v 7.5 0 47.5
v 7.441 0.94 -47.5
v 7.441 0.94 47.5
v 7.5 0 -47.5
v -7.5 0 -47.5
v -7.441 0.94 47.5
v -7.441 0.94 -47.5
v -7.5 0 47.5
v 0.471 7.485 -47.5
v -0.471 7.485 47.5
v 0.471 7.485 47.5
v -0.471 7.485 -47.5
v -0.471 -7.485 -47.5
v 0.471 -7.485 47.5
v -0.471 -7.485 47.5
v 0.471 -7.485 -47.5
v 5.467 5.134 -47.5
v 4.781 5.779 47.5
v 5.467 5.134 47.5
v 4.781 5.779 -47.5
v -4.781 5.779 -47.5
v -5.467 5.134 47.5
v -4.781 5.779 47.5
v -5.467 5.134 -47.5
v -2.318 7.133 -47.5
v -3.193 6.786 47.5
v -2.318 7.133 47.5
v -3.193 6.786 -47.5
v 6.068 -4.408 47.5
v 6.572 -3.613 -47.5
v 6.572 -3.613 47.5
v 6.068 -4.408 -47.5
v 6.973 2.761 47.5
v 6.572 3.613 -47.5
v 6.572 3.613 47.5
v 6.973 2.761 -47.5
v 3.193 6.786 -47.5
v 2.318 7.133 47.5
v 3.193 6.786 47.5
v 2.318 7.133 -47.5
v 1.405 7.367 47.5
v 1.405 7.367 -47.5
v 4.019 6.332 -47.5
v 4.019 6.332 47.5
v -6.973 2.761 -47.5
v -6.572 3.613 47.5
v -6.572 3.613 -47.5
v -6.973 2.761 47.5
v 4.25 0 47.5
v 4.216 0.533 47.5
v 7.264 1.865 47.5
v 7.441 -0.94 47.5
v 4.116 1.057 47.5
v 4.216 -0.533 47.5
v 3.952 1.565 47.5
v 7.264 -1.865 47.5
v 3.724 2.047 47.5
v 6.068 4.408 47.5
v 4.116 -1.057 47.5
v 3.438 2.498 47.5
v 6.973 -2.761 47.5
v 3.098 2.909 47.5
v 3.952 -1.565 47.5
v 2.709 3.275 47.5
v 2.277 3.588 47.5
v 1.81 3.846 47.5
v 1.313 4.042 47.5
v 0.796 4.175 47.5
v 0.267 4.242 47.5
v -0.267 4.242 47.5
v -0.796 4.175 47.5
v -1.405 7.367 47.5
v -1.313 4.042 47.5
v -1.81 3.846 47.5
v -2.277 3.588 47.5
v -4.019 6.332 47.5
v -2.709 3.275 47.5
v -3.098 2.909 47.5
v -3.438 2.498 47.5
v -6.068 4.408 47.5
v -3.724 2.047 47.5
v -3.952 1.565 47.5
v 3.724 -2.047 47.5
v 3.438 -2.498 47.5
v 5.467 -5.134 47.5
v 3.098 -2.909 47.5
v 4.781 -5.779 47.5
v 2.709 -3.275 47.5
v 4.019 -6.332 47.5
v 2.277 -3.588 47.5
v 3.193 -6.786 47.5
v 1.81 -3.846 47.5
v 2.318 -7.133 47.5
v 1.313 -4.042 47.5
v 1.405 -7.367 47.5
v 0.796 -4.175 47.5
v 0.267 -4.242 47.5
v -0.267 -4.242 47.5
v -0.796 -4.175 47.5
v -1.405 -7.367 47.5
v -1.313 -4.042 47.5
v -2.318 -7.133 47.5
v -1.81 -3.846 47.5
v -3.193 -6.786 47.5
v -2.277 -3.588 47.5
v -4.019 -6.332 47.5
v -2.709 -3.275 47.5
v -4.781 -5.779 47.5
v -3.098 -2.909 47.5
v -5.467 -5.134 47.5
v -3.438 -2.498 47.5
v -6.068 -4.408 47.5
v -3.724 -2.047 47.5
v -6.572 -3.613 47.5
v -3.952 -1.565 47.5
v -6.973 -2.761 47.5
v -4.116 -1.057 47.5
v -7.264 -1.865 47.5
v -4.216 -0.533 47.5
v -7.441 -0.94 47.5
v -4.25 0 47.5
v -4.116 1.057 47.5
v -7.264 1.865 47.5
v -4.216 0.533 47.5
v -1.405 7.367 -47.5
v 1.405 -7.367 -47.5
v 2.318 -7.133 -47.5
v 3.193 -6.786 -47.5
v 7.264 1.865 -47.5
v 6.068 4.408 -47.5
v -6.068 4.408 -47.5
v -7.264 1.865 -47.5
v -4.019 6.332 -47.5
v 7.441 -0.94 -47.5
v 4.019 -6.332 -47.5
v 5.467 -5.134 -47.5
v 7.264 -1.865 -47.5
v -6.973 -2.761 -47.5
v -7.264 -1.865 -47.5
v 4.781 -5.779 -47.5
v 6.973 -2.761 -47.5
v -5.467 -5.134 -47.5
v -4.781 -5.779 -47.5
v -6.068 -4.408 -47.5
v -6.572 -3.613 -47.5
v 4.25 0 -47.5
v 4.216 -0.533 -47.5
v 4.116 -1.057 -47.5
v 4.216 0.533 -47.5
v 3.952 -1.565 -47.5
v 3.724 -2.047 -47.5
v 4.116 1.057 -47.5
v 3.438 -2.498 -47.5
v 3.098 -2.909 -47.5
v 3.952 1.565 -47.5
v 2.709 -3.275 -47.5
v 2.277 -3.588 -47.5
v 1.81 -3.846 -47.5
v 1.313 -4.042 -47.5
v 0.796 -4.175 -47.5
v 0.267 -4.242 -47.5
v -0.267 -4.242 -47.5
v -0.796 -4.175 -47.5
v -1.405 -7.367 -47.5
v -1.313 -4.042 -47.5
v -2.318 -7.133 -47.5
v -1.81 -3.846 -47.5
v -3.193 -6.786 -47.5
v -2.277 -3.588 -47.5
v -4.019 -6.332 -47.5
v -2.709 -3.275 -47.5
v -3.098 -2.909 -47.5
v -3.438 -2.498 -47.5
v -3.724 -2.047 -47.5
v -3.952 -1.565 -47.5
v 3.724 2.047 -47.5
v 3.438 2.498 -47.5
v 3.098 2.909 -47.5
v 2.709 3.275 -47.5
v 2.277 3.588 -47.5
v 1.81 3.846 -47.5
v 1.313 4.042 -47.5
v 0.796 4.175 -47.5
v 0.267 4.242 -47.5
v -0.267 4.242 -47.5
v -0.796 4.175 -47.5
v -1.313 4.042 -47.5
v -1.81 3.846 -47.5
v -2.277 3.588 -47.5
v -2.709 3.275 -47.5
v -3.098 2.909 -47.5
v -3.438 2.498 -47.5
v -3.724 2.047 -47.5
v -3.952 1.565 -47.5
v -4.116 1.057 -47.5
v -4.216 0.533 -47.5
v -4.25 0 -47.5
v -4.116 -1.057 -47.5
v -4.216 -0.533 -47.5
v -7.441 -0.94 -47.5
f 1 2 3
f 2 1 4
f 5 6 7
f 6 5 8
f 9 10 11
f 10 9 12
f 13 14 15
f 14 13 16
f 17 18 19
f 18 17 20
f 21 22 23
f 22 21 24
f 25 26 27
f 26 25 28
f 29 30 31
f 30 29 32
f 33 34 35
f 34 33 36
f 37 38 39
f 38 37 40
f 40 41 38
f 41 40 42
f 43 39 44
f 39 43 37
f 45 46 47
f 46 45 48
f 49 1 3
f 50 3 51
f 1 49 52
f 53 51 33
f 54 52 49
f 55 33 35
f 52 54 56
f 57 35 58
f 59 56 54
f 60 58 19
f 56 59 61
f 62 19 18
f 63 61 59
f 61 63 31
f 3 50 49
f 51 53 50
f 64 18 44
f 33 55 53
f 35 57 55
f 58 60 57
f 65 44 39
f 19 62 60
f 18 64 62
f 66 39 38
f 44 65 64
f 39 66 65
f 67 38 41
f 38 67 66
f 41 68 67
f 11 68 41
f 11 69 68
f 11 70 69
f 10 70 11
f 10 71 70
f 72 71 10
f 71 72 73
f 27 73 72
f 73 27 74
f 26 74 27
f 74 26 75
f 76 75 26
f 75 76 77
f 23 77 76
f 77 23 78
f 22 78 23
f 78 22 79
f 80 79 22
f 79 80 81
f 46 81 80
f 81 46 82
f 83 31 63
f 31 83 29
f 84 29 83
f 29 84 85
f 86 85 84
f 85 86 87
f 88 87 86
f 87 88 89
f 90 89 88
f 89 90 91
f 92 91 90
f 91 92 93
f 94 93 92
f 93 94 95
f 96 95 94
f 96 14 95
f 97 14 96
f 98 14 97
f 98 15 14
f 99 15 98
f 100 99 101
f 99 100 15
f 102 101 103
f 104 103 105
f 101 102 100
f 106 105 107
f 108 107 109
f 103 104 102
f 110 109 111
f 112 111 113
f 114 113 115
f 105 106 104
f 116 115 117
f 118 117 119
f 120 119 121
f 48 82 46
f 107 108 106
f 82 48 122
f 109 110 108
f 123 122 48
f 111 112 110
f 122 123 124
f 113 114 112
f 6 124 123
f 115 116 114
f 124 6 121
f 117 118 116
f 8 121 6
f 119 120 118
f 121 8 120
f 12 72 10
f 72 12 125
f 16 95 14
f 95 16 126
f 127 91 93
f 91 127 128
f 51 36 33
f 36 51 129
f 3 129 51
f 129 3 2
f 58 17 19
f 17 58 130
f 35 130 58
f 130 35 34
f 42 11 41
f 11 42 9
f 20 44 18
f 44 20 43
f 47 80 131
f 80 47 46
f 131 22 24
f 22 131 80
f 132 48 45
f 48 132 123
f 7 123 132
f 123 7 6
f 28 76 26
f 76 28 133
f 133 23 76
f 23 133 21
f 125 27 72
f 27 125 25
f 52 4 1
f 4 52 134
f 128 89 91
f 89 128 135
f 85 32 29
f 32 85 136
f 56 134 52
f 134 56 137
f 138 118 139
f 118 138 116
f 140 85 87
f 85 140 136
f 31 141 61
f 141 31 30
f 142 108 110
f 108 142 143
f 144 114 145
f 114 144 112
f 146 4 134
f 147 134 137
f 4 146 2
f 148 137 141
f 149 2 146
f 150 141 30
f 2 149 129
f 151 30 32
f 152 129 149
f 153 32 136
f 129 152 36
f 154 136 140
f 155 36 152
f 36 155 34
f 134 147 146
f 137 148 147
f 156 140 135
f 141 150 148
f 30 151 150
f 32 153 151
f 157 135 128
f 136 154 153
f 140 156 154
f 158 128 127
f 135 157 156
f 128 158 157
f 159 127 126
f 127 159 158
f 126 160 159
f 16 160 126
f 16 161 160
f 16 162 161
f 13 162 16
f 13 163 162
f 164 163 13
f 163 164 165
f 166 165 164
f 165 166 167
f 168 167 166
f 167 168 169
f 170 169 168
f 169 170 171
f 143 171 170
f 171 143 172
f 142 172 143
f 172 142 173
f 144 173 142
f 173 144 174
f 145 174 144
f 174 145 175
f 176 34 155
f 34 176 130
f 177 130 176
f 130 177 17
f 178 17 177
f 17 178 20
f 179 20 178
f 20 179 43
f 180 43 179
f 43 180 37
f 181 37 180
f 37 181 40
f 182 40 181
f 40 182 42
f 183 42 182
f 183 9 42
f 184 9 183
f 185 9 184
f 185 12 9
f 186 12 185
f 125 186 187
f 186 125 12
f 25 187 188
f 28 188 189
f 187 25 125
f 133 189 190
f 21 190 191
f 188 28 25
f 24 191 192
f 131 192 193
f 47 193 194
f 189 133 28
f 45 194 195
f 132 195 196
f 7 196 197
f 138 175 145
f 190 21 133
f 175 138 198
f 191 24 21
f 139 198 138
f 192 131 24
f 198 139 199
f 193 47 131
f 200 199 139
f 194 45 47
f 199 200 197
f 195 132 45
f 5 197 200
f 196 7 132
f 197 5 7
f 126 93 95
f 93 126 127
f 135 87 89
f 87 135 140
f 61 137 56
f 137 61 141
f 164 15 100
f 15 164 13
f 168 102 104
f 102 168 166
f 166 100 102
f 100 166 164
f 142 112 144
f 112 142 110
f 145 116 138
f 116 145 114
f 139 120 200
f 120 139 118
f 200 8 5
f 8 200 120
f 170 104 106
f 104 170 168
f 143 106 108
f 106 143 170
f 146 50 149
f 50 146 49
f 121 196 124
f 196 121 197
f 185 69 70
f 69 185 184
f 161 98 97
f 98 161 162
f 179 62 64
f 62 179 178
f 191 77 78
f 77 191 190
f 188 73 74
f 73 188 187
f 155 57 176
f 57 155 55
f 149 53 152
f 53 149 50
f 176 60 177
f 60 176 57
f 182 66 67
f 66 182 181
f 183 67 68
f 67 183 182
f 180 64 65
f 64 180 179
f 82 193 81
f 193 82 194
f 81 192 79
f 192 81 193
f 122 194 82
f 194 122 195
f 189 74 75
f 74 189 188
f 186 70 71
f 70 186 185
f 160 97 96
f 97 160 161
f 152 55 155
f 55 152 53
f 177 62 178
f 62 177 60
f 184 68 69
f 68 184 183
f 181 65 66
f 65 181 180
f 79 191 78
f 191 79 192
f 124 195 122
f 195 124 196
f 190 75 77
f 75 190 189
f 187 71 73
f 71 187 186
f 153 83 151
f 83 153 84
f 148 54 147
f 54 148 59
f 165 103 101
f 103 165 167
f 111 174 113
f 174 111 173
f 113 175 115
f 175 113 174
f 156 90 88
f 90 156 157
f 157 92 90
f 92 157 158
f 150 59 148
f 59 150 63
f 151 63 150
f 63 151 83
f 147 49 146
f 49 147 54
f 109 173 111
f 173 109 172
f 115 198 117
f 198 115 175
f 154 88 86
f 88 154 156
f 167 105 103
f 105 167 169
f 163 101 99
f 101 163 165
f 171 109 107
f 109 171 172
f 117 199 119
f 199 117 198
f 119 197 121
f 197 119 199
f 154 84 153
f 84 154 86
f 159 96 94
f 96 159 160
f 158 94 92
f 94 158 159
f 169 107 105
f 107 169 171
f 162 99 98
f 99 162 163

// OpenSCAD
$fn = 50;


difference() {
	union() {
		translate(v = [0, 0, -47.5000000000]) {
			cylinder(h = 95, r = 7.5000000000);
		}
	}
	union() {
		translate(v = [0, 0, -100.0000000000]) {
			cylinder(h = 200, r = 4.2500000000);
		}
	}
}
